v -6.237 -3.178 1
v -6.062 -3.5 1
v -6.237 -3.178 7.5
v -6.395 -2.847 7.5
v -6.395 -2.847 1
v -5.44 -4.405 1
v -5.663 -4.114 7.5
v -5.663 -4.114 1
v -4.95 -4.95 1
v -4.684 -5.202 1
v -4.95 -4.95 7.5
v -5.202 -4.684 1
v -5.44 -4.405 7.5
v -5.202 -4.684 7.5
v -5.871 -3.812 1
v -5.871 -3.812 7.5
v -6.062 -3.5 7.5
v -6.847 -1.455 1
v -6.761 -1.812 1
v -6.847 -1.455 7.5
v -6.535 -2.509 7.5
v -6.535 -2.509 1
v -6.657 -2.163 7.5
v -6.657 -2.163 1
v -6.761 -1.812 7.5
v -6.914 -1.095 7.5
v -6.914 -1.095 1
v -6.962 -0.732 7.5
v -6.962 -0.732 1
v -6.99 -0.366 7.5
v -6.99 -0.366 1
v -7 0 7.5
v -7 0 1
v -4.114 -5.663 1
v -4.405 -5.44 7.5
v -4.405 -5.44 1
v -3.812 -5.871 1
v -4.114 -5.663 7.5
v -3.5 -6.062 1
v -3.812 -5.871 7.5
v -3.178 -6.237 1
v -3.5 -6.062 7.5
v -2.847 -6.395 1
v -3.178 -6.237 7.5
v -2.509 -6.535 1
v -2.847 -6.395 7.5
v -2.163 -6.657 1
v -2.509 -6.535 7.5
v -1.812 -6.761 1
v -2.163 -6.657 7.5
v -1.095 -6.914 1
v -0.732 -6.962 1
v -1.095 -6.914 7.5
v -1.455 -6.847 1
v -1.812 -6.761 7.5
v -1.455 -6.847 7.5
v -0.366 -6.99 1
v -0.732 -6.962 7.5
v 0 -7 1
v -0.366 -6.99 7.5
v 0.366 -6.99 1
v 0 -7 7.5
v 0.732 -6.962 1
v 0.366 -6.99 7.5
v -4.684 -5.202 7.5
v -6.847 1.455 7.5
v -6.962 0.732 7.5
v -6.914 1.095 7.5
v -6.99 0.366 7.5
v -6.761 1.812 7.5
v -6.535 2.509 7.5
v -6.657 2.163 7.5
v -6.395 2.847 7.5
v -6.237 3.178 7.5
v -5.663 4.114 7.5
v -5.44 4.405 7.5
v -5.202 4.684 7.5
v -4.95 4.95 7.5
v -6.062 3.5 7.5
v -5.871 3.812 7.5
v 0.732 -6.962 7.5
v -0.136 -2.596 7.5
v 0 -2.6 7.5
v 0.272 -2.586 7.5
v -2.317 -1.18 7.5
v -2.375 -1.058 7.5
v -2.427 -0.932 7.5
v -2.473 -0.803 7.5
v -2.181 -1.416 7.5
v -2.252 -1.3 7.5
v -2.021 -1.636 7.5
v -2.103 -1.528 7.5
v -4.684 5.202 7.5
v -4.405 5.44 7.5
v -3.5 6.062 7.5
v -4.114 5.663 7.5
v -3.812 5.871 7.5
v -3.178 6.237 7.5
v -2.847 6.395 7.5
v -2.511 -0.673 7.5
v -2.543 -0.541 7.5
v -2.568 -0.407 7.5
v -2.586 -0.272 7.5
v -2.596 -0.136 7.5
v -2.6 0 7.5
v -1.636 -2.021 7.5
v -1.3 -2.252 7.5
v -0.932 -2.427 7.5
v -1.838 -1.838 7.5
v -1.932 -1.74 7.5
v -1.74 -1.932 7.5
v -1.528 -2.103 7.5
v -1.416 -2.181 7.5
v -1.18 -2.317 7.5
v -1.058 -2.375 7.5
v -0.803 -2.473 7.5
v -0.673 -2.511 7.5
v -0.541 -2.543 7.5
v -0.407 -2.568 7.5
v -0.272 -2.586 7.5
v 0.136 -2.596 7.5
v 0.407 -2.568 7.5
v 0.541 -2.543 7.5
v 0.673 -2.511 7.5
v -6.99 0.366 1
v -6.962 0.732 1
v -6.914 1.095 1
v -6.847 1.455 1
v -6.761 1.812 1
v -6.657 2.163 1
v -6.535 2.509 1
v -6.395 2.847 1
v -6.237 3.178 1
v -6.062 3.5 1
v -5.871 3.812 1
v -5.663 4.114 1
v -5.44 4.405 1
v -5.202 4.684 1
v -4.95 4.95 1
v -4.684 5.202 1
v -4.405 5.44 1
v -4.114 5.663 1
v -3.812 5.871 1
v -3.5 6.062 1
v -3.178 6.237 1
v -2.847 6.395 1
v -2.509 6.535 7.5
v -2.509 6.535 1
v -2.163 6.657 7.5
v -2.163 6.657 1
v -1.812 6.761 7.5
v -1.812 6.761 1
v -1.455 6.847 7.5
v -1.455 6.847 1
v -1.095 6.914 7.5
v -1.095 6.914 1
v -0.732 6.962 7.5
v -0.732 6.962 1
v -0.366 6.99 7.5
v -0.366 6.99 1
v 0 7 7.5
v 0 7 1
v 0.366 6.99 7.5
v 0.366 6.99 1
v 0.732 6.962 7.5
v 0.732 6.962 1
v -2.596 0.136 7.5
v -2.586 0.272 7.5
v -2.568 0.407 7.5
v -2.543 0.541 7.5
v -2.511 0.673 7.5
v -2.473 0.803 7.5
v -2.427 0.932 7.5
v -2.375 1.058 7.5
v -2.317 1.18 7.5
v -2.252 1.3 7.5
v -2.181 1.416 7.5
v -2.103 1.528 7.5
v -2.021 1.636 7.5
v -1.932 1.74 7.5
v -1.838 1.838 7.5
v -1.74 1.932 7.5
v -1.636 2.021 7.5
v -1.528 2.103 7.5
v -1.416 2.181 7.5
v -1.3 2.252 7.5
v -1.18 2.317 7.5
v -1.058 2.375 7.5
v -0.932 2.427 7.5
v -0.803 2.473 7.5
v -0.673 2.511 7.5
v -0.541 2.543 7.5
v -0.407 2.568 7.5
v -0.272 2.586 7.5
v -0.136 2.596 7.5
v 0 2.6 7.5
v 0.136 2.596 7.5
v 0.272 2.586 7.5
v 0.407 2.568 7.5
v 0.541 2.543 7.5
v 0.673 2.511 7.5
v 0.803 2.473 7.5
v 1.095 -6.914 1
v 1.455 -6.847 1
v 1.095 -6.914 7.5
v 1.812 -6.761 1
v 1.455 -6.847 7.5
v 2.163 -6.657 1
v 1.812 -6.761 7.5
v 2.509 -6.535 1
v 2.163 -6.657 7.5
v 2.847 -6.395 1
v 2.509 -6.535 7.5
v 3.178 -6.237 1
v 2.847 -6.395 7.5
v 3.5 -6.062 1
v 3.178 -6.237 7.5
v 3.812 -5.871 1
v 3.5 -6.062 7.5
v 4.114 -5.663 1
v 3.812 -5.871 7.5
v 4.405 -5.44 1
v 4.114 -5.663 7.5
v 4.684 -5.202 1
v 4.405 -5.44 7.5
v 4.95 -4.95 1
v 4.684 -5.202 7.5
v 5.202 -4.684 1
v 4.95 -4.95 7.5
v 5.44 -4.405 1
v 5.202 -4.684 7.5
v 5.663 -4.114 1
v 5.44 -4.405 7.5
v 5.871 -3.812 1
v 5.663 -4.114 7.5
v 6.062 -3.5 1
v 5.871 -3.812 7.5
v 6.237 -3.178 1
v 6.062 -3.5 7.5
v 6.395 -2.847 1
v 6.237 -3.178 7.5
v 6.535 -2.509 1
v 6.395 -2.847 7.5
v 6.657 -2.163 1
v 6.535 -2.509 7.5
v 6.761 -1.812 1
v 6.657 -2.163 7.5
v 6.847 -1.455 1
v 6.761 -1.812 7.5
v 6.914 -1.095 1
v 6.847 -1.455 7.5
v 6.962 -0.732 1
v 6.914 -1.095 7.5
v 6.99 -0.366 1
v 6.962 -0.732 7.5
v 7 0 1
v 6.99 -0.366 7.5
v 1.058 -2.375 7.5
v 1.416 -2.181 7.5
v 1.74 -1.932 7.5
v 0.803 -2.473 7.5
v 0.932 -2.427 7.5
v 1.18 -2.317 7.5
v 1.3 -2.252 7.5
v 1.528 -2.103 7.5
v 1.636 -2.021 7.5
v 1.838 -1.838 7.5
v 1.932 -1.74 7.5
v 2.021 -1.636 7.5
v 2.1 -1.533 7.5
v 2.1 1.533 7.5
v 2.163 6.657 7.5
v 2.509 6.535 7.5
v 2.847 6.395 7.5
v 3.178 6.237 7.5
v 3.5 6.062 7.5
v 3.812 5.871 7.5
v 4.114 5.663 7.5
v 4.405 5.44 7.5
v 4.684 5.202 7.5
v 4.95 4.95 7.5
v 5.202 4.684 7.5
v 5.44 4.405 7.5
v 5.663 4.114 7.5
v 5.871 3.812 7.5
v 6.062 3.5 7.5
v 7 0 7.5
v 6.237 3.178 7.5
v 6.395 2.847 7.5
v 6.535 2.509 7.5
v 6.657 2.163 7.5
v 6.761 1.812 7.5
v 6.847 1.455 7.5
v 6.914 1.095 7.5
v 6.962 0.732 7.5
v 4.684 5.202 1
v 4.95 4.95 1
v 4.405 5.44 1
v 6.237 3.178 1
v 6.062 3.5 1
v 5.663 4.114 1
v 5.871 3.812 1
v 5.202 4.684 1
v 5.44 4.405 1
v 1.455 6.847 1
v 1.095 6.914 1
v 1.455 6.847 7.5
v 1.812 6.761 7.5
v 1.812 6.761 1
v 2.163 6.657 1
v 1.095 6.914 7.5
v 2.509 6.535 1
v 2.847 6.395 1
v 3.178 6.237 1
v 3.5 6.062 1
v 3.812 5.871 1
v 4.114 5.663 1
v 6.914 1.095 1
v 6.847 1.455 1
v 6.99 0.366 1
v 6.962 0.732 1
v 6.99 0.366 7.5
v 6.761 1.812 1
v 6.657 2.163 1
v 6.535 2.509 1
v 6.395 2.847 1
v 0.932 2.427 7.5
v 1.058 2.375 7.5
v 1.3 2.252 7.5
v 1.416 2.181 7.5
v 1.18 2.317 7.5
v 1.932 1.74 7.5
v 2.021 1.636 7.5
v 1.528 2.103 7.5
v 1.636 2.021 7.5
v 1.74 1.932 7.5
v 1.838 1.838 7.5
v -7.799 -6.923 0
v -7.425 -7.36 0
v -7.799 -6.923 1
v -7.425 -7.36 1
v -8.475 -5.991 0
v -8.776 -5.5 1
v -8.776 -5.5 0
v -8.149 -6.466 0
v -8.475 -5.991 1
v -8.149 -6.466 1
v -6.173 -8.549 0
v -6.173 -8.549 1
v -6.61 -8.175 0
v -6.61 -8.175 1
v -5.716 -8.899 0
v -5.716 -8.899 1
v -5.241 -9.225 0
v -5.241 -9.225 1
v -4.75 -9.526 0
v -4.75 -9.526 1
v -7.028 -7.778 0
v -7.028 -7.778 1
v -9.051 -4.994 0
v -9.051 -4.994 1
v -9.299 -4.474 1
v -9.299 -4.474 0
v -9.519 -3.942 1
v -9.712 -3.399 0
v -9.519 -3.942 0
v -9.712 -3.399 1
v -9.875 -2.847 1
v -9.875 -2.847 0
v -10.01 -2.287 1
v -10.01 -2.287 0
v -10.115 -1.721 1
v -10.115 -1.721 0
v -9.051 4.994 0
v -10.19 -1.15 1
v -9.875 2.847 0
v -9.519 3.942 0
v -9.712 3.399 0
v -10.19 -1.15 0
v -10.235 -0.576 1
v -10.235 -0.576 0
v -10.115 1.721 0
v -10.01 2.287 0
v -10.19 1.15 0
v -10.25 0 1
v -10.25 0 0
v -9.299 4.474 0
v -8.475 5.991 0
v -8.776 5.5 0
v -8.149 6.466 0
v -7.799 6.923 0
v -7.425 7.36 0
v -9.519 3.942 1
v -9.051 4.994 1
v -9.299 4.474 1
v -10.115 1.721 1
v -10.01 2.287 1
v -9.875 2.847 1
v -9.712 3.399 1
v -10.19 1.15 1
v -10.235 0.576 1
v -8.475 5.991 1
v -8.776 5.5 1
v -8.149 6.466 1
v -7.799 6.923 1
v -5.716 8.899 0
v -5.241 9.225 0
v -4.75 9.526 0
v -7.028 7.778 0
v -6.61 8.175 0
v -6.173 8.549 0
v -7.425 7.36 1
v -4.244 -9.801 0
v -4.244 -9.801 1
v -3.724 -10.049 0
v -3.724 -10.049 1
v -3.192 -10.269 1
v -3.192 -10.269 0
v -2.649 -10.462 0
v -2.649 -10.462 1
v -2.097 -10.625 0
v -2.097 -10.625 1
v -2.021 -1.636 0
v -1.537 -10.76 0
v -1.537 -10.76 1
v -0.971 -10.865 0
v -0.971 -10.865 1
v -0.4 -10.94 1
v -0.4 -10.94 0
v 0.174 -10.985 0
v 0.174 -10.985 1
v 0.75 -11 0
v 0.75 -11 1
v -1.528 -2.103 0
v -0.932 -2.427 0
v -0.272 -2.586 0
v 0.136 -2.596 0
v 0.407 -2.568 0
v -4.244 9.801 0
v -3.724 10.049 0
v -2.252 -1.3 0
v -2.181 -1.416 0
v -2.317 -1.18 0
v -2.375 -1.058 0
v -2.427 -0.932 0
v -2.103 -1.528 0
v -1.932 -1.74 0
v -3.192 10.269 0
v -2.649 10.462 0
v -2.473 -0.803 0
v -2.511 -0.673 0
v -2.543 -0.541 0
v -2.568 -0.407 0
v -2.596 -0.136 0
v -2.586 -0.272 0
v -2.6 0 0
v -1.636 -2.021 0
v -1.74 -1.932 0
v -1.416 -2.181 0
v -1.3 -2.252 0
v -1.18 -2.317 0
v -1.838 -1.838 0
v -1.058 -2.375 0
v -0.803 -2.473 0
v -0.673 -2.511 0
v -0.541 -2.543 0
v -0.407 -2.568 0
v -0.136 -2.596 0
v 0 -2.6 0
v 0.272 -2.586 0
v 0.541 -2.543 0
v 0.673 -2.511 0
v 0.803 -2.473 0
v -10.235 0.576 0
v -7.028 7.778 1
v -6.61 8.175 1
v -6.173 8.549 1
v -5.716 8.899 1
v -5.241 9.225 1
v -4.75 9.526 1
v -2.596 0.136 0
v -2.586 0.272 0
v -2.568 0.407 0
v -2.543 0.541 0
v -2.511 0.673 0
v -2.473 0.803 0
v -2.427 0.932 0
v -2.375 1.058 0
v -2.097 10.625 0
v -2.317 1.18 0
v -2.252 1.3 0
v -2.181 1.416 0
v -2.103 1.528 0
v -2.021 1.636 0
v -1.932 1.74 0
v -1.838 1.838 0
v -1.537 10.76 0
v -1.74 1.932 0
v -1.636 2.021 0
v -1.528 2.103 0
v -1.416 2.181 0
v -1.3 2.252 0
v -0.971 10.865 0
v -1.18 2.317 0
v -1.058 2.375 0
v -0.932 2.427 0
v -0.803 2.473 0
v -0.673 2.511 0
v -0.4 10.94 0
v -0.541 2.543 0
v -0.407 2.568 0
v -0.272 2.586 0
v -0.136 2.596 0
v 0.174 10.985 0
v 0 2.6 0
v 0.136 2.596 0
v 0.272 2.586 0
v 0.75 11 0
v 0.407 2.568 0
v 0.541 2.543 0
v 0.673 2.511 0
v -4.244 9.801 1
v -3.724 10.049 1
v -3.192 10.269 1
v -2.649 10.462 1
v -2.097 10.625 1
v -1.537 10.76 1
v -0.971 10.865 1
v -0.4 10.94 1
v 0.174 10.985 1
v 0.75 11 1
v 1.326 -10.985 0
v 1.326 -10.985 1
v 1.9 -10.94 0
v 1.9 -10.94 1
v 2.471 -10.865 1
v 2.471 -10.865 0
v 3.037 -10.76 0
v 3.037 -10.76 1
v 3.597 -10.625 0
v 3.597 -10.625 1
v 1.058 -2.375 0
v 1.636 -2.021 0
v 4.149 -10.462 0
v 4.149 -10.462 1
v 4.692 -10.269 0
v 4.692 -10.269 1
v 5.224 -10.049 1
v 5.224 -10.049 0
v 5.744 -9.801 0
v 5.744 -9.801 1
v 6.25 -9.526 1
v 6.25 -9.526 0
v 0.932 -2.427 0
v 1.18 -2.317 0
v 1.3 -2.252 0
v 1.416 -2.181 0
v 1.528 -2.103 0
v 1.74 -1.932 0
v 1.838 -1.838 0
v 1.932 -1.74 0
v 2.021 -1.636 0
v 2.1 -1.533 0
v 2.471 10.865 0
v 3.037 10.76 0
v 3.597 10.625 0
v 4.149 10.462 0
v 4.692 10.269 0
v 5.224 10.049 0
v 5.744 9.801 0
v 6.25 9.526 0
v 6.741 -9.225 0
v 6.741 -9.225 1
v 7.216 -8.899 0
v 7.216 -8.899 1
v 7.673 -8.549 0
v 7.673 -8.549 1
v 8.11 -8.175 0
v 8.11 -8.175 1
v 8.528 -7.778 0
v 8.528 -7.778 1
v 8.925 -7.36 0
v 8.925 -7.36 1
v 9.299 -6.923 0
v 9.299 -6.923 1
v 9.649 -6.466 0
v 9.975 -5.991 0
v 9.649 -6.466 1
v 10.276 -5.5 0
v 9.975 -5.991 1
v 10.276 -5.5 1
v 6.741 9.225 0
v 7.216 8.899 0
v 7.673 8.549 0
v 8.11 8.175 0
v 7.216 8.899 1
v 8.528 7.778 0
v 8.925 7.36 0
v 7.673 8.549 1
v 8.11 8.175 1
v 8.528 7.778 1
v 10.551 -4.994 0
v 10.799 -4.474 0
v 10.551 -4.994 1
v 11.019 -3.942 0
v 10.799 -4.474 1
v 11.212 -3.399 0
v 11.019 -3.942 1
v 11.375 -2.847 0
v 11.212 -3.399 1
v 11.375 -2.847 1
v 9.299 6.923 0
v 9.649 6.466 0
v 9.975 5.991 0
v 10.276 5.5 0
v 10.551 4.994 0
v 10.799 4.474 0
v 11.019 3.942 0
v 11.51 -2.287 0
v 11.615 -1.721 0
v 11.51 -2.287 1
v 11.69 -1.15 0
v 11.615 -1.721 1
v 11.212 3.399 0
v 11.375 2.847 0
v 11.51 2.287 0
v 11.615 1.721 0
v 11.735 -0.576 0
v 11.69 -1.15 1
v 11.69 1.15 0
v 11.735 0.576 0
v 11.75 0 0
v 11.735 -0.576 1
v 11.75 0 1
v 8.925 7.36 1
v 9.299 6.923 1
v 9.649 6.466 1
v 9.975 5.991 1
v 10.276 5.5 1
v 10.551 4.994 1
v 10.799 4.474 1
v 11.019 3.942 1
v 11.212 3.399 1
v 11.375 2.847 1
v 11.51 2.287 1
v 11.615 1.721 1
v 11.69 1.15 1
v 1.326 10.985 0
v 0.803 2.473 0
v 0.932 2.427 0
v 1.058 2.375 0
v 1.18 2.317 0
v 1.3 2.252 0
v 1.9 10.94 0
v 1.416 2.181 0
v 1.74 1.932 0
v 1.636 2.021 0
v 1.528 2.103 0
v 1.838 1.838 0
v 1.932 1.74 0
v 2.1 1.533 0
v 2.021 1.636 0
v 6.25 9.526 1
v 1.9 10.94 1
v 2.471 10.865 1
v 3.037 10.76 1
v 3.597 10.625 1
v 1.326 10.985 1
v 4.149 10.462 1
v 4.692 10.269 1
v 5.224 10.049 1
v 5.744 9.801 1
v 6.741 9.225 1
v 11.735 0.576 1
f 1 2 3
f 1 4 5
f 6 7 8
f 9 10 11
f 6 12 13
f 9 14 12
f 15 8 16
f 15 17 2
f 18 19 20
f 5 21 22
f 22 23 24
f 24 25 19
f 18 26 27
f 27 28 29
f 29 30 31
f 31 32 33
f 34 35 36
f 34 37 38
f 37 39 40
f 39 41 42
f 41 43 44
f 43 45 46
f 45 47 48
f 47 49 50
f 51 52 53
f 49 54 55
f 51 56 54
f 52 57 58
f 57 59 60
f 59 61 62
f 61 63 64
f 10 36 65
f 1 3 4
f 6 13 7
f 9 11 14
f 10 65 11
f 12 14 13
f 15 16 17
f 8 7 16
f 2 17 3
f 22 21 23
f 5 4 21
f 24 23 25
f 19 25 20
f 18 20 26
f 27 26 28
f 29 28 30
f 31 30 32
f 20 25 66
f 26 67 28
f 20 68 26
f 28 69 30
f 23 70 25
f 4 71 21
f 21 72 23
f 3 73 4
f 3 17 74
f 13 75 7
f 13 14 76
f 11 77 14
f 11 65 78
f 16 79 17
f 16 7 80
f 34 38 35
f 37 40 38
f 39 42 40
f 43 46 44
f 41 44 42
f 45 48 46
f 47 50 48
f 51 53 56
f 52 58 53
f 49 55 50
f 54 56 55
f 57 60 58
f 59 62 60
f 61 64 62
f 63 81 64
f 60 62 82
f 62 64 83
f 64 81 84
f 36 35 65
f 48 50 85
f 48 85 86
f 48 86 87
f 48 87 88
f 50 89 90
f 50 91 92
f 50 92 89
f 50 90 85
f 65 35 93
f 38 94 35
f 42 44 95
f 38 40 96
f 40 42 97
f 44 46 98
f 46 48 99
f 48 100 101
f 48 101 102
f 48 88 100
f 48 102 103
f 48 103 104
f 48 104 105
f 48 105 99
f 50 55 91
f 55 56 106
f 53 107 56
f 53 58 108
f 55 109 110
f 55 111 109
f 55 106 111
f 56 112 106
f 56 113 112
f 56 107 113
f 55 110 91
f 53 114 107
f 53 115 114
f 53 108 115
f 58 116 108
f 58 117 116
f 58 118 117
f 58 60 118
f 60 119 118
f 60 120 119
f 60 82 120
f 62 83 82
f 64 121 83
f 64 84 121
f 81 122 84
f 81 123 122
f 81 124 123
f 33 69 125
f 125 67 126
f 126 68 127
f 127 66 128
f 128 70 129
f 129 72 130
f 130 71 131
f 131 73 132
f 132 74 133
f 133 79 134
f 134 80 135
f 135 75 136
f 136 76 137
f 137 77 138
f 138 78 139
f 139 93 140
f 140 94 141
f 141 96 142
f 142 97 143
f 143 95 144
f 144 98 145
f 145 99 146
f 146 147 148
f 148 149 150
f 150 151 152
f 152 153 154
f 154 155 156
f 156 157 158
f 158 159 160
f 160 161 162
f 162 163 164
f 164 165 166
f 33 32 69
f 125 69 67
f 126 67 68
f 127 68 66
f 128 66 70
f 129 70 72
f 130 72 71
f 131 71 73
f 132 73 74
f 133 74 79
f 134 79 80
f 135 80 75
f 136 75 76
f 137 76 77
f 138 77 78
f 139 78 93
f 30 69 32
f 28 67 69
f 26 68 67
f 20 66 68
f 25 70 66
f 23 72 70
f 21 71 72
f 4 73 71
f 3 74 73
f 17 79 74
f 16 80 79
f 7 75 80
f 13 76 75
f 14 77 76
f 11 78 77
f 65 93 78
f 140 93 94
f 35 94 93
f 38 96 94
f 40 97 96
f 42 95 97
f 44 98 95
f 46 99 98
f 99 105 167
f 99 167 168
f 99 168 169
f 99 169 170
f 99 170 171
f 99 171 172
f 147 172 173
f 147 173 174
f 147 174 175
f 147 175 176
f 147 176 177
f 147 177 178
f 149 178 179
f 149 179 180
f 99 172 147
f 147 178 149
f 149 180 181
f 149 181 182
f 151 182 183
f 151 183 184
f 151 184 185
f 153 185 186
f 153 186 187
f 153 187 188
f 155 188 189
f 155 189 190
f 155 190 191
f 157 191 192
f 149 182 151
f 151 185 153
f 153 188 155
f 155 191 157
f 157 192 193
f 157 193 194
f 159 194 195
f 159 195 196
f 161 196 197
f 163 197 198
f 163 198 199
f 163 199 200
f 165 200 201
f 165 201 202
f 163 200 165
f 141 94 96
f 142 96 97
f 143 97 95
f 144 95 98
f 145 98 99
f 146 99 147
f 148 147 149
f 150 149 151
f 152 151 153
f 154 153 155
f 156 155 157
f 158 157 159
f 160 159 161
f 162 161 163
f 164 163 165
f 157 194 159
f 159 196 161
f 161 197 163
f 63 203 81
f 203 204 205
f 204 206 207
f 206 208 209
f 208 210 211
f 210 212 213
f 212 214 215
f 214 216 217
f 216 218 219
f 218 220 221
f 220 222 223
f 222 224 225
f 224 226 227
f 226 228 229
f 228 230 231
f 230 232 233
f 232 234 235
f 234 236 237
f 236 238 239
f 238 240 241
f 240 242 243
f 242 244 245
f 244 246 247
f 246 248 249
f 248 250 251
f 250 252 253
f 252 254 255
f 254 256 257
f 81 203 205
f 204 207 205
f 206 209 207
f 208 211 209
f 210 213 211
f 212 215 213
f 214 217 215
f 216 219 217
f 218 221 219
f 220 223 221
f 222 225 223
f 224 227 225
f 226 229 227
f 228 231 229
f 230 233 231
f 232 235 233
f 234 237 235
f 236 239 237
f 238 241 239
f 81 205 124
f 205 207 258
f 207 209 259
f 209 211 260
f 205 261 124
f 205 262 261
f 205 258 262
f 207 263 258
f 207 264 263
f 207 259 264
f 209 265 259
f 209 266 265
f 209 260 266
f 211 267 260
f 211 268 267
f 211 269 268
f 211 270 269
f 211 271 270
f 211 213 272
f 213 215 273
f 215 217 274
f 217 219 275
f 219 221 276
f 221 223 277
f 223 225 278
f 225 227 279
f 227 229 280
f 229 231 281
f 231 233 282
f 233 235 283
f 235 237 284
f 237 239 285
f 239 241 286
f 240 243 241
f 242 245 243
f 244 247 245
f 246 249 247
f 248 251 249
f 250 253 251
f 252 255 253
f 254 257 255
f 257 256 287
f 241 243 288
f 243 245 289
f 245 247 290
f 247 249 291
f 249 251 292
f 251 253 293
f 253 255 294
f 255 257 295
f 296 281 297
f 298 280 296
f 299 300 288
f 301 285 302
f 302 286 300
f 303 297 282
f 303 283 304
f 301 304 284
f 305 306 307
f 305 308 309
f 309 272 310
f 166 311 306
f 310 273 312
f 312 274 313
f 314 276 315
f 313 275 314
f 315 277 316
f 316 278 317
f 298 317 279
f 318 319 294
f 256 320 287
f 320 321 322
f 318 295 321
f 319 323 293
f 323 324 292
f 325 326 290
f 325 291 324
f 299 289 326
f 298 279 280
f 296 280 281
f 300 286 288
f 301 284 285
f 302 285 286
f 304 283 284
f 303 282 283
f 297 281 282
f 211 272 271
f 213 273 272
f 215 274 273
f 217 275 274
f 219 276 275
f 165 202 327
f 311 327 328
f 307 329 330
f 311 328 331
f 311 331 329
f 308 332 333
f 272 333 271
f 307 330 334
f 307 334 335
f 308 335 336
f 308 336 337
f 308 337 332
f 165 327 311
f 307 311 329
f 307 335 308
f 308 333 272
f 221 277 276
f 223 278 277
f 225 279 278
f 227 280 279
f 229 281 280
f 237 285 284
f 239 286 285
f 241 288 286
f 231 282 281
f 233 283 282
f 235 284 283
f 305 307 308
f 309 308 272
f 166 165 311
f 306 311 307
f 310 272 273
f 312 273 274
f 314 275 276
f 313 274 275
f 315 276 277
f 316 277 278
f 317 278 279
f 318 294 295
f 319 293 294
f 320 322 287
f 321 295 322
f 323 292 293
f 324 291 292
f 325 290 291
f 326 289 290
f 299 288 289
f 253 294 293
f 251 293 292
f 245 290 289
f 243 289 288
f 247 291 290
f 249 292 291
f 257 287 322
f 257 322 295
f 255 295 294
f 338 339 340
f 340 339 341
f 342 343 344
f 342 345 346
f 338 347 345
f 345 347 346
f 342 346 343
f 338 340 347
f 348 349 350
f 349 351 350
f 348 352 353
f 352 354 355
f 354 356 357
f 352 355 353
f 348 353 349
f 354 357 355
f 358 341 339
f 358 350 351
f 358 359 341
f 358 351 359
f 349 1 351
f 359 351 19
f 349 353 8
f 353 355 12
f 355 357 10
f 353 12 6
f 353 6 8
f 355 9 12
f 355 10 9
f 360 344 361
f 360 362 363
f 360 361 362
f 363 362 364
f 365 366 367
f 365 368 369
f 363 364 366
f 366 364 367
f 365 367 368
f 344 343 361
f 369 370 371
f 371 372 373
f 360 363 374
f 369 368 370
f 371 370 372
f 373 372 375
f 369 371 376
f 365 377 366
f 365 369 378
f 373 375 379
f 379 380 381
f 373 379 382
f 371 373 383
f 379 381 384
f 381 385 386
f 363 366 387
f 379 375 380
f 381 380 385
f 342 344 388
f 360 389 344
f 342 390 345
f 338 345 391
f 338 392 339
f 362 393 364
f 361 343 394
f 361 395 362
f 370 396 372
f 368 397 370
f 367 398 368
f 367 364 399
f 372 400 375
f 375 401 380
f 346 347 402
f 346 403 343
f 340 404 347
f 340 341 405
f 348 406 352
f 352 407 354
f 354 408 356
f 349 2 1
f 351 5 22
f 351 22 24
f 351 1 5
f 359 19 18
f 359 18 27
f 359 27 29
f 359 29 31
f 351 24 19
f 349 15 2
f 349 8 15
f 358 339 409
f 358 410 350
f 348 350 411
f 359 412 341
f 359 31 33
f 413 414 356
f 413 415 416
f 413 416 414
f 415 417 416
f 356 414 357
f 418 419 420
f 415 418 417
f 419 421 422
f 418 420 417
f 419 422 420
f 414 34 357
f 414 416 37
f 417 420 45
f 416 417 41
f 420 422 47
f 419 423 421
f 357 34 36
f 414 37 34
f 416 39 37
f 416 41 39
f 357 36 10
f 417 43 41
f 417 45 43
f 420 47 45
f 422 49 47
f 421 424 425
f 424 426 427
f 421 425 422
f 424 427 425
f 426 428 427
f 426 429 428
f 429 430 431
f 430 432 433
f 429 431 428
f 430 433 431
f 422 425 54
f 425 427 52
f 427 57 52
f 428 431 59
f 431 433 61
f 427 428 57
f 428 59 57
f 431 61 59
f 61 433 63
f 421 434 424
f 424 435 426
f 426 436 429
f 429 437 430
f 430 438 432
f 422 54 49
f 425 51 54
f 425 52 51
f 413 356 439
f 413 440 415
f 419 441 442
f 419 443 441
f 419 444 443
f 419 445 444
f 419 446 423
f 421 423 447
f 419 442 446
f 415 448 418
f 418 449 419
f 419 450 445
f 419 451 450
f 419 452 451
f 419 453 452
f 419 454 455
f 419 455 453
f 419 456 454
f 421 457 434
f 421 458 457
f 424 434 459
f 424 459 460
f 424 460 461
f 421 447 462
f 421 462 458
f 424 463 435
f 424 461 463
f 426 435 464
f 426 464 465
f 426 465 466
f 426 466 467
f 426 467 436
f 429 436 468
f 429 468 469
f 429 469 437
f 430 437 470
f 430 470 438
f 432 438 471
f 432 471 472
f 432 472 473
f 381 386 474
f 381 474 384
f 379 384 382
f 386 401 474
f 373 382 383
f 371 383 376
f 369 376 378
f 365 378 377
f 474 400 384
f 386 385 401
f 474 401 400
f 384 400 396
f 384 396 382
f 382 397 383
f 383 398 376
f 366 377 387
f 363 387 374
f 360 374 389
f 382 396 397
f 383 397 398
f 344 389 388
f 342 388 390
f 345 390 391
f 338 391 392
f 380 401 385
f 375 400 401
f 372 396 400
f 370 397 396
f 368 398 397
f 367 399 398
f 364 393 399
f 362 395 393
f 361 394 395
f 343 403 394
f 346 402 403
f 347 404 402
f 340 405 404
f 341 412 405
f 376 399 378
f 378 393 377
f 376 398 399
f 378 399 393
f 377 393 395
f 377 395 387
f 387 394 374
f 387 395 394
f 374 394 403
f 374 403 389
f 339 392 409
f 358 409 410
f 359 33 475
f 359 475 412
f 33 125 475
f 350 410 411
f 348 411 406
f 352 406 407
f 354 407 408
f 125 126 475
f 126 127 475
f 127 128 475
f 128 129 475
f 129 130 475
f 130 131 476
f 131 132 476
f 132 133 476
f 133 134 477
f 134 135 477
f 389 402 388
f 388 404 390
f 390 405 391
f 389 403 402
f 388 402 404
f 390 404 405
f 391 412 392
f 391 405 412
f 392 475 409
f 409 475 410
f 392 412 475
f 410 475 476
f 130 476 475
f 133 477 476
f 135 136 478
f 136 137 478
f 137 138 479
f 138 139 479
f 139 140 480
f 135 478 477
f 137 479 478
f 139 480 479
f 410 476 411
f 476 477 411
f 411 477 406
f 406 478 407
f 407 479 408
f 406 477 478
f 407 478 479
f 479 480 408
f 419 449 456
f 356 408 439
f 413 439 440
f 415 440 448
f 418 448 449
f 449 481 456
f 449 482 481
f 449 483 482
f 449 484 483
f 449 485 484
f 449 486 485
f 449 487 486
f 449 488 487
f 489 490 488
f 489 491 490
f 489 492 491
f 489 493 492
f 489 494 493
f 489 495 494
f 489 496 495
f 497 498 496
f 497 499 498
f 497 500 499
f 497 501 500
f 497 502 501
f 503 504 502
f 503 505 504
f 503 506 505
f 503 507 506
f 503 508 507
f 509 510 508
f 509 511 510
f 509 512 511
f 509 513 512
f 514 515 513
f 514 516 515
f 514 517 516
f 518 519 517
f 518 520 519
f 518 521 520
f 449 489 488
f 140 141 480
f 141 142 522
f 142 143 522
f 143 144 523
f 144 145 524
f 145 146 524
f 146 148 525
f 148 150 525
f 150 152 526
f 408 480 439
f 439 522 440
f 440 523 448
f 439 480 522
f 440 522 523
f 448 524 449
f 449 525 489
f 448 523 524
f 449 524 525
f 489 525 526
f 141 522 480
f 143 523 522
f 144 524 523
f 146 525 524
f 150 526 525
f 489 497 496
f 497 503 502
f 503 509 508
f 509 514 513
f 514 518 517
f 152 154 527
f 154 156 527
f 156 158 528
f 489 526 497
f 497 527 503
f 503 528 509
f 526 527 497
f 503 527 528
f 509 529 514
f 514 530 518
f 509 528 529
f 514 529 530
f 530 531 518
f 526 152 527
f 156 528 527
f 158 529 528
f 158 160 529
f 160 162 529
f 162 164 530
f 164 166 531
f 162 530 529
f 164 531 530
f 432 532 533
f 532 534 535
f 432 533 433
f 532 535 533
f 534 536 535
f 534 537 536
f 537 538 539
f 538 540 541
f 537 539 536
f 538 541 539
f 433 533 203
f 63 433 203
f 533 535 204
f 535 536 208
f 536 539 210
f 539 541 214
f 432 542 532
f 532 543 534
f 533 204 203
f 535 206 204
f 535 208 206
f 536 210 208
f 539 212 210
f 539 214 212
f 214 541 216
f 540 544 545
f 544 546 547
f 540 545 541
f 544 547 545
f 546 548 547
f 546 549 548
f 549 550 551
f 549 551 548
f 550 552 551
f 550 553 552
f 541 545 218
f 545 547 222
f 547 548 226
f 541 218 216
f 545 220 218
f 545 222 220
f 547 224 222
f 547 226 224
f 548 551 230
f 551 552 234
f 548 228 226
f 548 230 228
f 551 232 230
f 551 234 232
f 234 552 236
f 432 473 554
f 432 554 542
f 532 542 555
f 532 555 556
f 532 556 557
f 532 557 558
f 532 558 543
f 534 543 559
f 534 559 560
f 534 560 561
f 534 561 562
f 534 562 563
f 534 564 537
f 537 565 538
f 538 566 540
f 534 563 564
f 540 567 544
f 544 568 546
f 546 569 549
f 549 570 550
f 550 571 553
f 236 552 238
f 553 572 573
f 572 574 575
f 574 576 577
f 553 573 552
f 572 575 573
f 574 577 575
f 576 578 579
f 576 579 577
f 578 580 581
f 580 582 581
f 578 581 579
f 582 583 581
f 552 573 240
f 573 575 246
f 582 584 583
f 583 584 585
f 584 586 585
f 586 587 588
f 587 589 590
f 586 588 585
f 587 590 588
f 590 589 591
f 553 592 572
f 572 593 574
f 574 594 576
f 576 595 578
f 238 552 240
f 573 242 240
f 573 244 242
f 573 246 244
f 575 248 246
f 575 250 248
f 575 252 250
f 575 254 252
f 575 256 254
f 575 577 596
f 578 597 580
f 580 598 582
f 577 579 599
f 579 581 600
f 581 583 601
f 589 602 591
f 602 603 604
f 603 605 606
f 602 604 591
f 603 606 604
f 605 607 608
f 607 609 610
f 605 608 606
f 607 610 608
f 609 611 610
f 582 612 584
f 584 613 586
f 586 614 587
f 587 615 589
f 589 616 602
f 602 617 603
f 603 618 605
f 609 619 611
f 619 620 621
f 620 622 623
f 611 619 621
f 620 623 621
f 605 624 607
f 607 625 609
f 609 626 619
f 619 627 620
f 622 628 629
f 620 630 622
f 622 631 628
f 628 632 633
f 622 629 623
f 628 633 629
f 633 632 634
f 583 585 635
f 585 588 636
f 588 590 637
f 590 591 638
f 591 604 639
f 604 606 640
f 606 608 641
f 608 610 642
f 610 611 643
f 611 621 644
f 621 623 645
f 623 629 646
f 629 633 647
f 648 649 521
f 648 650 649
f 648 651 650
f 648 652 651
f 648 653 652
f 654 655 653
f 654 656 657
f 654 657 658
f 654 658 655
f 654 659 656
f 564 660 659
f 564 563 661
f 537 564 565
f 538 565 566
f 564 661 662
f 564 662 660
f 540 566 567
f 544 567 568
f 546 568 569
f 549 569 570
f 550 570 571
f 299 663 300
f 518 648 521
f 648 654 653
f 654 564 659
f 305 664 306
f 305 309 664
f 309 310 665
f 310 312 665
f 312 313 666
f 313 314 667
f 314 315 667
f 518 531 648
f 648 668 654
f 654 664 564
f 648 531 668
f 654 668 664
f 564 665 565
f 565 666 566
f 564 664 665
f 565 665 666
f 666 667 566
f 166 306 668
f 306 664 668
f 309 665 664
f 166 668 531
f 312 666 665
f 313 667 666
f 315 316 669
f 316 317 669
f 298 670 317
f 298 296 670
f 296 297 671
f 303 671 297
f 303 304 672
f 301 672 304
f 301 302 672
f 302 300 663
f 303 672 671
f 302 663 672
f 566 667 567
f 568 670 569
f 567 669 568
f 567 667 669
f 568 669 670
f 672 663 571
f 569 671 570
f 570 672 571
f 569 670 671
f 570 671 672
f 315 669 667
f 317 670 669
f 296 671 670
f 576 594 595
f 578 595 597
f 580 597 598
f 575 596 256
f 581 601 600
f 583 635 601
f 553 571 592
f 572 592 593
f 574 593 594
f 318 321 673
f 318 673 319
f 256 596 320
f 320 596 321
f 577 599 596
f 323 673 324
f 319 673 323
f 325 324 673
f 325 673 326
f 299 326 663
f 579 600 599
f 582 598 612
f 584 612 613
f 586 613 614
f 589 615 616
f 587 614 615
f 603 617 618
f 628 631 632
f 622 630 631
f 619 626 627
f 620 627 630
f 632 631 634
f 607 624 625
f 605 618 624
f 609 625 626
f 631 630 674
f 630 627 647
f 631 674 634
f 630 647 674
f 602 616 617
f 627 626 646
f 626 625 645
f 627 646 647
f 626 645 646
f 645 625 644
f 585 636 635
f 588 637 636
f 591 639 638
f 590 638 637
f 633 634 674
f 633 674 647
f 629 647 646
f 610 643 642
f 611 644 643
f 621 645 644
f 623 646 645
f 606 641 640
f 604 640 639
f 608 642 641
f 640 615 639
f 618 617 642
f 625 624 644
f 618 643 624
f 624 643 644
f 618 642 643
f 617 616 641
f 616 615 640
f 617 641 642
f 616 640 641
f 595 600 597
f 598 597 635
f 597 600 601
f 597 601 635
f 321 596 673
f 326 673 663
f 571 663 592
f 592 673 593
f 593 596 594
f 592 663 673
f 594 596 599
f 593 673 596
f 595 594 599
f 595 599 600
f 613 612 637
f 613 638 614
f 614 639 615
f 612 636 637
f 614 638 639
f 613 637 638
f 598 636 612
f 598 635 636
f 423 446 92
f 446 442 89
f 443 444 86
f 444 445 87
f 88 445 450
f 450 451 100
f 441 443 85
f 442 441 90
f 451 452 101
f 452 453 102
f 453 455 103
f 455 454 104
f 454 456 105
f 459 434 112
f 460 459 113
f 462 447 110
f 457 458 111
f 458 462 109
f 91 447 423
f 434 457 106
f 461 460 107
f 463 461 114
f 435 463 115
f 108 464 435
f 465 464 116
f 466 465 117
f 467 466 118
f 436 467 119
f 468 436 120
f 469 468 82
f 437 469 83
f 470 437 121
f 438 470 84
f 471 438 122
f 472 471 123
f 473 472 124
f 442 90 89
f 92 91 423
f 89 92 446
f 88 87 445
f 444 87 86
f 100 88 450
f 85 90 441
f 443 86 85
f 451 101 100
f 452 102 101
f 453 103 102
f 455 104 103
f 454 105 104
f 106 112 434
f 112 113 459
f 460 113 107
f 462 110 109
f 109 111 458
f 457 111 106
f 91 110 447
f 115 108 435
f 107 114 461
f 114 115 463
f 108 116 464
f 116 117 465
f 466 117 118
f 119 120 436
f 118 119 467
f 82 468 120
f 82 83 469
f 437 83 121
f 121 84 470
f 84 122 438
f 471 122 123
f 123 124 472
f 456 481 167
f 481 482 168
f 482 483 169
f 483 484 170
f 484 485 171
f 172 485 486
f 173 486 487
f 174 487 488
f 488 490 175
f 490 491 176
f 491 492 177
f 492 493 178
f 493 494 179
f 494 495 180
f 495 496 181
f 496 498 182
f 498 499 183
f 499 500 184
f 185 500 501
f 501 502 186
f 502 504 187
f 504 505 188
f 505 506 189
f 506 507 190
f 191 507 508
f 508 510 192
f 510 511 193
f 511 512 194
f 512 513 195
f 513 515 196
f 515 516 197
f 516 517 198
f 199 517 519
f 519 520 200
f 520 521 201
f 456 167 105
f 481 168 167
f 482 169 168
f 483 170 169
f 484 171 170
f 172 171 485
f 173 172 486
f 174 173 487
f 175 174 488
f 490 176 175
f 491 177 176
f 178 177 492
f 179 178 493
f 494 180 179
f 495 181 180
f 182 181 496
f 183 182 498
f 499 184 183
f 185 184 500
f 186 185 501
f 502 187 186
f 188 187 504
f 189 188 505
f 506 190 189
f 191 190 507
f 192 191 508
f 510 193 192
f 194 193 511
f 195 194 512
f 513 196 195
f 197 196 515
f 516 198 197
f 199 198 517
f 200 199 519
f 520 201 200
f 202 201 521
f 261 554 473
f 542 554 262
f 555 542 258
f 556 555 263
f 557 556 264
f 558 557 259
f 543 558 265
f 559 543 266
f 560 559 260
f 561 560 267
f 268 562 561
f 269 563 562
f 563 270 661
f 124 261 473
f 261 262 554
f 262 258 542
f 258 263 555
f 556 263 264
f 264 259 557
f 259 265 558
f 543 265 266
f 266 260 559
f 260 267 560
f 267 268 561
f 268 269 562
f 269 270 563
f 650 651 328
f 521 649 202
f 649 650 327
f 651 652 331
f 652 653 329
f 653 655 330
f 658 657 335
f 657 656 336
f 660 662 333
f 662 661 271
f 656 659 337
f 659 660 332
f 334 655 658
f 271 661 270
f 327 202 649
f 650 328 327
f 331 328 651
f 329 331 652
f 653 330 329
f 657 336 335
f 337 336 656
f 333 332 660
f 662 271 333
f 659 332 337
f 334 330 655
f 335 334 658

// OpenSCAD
// file: oobb_hardware.scad
// Generated from installed OOBB v5. All primitives use overhang=True.

module oobb_hole_m2() {
difference() {
	union() {
		cylinder(h = 1, r = 1.35);
	}
	union();
}

}

module oobb_hole_m3() {
difference() {
	union() {
		cylinder(h = 1, r = 1.8);
	}
	union();
}

}

module oobb_hole_m6() {
difference() {
	union() {
		cylinder(h = 1, r = 3.25);
	}
	union();
}

}

module oobb_nut_m2() {
difference() {
	union() {
		translate(v = [0, 0, 0]) {
			rotate(a = [0, 0, 0]) {
				difference() {
					union() {
						linear_extrude(height = 2.2) {
							polygon(points = [[2.4234, 0.0], [1.2117000000000002, 2.0987259635312085], [-1.2116999999999996, 2.0987259635312085], [-2.4234, 2.967809053053696e-16], [-1.211700000000001, -2.098725963531208], [1.2116999999999984, -2.0987259635312094]]);
						}
						translate(v = [-1.25, -2.75, -0.3]) {
							cube(size = [2.5, 5.5, 0.3]);
						}
						translate(v = [-1.25, -1.25, -0.6]) {
							cube(size = [2.5, 2.5, 0.3]);
						}
						translate(v = [-1.25, -2.75, 2.2]) {
							cube(size = [2.5, 5.5, 0.3]);
						}
						translate(v = [-1.25, -1.25, 2.5]) {
							cube(size = [2.5, 2.5, 0.3]);
						}
					}
					union();
				}
			}
		}
	}
	union();
}

}

module oobb_socket_m2() {
difference() {
	union() {
		translate(v = [0, 0, 0]) {
			rotate(a = [0, 0, 0]) {
				difference() {
					union() {
						cylinder(h = 2.2, r = 2.1);
						translate(v = [-1.25, -2.75, -0.3]) {
							cube(size = [2.5, 5.5, 0.3]);
						}
						translate(v = [-1.25, -1.25, -0.6]) {
							cube(size = [2.5, 2.5, 0.3]);
						}
					}
					union();
				}
			}
		}
	}
	union();
}

}

module oobb_nut_m3() {
difference() {
	union() {
		translate(v = [0, 0, 0]) {
			rotate(a = [0, 0, 0]) {
				difference() {
					union() {
						linear_extrude(height = 2.7) {
							polygon(points = [[3.4619999999999997, 0.0], [1.7310000000000003, 2.9981799479017264], [-1.7309999999999992, 2.9981799479017264], [-3.4619999999999997, 4.2397272186481365e-16], [-1.7310000000000014, -2.998179947901726], [1.7309999999999977, -2.9981799479017277]]);
						}
						translate(v = [-1.75, -3.25, -0.3]) {
							cube(size = [3.5, 6.5, 0.3]);
						}
						translate(v = [-1.75, -1.75, -0.6]) {
							cube(size = [3.5, 3.5, 0.3]);
						}
						translate(v = [-1.75, -3.25, 2.7]) {
							cube(size = [3.5, 6.5, 0.3]);
						}
						translate(v = [-1.75, -1.75, 3.0]) {
							cube(size = [3.5, 3.5, 0.3]);
						}
					}
					union();
				}
			}
		}
	}
	union();
}

}

module oobb_socket_m3() {
difference() {
	union() {
		translate(v = [0, 0, 0]) {
			rotate(a = [0, 0, 0]) {
				difference() {
					union() {
						cylinder(h = 3.2, r = 3.0);
						translate(v = [-1.75, -3.25, -0.3]) {
							cube(size = [3.5, 6.5, 0.3]);
						}
						translate(v = [-1.75, -1.75, -0.6]) {
							cube(size = [3.5, 3.5, 0.3]);
						}
					}
					union();
				}
			}
		}
	}
	union();
}

}
// file: parameters.scad
// Generated by working_scad.py. Edit the Python recipe to persist changes.
style = "version_5";
reduction = 20;
bearing_output = "6810";
bearing_input = "6704";
bearing_wave = "6704";
roller_diameter = 7.0;
roller_bore_diameter = 3.2;
roller_length = 12.0;
roller_material = "nylon";
central_joint_depth = 6.0;
max_screw_length = 35.0;
eccentricity = 0.75;
wave_radius = 40.0;
profile_clearance = 0.15;
roller_slot_clearance = 0.3;
roller_end_clearance = 0.3;
cage_wall = 4.0;
cage_plate_depth = 3.0;
bearing_seat_clearance = 0.1;
journal_clearance = 0.05;
bearing_axial_clearance = 0.2;
retainer_depth = 4.0;
housing_radius = 57.5;
housing_flange_width = 119.0;
housing_flange_depth = 3.0;
housing_flange_corner_radius = 1.5;
housing_screw_pitch_radius = 53.0;
housing_screw_count = 8;
input_shaft_diameter = 5.0;
input_shaft_flat_depth = 0.5;
shaft_fit_clearance = 0.1;
cage_screw_count = 5;
cage_screw_pilot_diameter = 1.6;
profile_samples_per_cavity = 100;
circle_fragments = 120;
overhang = true;
run_scad = true;
run_solidcraft = false;
// main file
include <parameters.scad>;
use <oobb_hardware.scad>;
include <geometry.scad>;
input_spacer(7.4999999999999964, true, false);
